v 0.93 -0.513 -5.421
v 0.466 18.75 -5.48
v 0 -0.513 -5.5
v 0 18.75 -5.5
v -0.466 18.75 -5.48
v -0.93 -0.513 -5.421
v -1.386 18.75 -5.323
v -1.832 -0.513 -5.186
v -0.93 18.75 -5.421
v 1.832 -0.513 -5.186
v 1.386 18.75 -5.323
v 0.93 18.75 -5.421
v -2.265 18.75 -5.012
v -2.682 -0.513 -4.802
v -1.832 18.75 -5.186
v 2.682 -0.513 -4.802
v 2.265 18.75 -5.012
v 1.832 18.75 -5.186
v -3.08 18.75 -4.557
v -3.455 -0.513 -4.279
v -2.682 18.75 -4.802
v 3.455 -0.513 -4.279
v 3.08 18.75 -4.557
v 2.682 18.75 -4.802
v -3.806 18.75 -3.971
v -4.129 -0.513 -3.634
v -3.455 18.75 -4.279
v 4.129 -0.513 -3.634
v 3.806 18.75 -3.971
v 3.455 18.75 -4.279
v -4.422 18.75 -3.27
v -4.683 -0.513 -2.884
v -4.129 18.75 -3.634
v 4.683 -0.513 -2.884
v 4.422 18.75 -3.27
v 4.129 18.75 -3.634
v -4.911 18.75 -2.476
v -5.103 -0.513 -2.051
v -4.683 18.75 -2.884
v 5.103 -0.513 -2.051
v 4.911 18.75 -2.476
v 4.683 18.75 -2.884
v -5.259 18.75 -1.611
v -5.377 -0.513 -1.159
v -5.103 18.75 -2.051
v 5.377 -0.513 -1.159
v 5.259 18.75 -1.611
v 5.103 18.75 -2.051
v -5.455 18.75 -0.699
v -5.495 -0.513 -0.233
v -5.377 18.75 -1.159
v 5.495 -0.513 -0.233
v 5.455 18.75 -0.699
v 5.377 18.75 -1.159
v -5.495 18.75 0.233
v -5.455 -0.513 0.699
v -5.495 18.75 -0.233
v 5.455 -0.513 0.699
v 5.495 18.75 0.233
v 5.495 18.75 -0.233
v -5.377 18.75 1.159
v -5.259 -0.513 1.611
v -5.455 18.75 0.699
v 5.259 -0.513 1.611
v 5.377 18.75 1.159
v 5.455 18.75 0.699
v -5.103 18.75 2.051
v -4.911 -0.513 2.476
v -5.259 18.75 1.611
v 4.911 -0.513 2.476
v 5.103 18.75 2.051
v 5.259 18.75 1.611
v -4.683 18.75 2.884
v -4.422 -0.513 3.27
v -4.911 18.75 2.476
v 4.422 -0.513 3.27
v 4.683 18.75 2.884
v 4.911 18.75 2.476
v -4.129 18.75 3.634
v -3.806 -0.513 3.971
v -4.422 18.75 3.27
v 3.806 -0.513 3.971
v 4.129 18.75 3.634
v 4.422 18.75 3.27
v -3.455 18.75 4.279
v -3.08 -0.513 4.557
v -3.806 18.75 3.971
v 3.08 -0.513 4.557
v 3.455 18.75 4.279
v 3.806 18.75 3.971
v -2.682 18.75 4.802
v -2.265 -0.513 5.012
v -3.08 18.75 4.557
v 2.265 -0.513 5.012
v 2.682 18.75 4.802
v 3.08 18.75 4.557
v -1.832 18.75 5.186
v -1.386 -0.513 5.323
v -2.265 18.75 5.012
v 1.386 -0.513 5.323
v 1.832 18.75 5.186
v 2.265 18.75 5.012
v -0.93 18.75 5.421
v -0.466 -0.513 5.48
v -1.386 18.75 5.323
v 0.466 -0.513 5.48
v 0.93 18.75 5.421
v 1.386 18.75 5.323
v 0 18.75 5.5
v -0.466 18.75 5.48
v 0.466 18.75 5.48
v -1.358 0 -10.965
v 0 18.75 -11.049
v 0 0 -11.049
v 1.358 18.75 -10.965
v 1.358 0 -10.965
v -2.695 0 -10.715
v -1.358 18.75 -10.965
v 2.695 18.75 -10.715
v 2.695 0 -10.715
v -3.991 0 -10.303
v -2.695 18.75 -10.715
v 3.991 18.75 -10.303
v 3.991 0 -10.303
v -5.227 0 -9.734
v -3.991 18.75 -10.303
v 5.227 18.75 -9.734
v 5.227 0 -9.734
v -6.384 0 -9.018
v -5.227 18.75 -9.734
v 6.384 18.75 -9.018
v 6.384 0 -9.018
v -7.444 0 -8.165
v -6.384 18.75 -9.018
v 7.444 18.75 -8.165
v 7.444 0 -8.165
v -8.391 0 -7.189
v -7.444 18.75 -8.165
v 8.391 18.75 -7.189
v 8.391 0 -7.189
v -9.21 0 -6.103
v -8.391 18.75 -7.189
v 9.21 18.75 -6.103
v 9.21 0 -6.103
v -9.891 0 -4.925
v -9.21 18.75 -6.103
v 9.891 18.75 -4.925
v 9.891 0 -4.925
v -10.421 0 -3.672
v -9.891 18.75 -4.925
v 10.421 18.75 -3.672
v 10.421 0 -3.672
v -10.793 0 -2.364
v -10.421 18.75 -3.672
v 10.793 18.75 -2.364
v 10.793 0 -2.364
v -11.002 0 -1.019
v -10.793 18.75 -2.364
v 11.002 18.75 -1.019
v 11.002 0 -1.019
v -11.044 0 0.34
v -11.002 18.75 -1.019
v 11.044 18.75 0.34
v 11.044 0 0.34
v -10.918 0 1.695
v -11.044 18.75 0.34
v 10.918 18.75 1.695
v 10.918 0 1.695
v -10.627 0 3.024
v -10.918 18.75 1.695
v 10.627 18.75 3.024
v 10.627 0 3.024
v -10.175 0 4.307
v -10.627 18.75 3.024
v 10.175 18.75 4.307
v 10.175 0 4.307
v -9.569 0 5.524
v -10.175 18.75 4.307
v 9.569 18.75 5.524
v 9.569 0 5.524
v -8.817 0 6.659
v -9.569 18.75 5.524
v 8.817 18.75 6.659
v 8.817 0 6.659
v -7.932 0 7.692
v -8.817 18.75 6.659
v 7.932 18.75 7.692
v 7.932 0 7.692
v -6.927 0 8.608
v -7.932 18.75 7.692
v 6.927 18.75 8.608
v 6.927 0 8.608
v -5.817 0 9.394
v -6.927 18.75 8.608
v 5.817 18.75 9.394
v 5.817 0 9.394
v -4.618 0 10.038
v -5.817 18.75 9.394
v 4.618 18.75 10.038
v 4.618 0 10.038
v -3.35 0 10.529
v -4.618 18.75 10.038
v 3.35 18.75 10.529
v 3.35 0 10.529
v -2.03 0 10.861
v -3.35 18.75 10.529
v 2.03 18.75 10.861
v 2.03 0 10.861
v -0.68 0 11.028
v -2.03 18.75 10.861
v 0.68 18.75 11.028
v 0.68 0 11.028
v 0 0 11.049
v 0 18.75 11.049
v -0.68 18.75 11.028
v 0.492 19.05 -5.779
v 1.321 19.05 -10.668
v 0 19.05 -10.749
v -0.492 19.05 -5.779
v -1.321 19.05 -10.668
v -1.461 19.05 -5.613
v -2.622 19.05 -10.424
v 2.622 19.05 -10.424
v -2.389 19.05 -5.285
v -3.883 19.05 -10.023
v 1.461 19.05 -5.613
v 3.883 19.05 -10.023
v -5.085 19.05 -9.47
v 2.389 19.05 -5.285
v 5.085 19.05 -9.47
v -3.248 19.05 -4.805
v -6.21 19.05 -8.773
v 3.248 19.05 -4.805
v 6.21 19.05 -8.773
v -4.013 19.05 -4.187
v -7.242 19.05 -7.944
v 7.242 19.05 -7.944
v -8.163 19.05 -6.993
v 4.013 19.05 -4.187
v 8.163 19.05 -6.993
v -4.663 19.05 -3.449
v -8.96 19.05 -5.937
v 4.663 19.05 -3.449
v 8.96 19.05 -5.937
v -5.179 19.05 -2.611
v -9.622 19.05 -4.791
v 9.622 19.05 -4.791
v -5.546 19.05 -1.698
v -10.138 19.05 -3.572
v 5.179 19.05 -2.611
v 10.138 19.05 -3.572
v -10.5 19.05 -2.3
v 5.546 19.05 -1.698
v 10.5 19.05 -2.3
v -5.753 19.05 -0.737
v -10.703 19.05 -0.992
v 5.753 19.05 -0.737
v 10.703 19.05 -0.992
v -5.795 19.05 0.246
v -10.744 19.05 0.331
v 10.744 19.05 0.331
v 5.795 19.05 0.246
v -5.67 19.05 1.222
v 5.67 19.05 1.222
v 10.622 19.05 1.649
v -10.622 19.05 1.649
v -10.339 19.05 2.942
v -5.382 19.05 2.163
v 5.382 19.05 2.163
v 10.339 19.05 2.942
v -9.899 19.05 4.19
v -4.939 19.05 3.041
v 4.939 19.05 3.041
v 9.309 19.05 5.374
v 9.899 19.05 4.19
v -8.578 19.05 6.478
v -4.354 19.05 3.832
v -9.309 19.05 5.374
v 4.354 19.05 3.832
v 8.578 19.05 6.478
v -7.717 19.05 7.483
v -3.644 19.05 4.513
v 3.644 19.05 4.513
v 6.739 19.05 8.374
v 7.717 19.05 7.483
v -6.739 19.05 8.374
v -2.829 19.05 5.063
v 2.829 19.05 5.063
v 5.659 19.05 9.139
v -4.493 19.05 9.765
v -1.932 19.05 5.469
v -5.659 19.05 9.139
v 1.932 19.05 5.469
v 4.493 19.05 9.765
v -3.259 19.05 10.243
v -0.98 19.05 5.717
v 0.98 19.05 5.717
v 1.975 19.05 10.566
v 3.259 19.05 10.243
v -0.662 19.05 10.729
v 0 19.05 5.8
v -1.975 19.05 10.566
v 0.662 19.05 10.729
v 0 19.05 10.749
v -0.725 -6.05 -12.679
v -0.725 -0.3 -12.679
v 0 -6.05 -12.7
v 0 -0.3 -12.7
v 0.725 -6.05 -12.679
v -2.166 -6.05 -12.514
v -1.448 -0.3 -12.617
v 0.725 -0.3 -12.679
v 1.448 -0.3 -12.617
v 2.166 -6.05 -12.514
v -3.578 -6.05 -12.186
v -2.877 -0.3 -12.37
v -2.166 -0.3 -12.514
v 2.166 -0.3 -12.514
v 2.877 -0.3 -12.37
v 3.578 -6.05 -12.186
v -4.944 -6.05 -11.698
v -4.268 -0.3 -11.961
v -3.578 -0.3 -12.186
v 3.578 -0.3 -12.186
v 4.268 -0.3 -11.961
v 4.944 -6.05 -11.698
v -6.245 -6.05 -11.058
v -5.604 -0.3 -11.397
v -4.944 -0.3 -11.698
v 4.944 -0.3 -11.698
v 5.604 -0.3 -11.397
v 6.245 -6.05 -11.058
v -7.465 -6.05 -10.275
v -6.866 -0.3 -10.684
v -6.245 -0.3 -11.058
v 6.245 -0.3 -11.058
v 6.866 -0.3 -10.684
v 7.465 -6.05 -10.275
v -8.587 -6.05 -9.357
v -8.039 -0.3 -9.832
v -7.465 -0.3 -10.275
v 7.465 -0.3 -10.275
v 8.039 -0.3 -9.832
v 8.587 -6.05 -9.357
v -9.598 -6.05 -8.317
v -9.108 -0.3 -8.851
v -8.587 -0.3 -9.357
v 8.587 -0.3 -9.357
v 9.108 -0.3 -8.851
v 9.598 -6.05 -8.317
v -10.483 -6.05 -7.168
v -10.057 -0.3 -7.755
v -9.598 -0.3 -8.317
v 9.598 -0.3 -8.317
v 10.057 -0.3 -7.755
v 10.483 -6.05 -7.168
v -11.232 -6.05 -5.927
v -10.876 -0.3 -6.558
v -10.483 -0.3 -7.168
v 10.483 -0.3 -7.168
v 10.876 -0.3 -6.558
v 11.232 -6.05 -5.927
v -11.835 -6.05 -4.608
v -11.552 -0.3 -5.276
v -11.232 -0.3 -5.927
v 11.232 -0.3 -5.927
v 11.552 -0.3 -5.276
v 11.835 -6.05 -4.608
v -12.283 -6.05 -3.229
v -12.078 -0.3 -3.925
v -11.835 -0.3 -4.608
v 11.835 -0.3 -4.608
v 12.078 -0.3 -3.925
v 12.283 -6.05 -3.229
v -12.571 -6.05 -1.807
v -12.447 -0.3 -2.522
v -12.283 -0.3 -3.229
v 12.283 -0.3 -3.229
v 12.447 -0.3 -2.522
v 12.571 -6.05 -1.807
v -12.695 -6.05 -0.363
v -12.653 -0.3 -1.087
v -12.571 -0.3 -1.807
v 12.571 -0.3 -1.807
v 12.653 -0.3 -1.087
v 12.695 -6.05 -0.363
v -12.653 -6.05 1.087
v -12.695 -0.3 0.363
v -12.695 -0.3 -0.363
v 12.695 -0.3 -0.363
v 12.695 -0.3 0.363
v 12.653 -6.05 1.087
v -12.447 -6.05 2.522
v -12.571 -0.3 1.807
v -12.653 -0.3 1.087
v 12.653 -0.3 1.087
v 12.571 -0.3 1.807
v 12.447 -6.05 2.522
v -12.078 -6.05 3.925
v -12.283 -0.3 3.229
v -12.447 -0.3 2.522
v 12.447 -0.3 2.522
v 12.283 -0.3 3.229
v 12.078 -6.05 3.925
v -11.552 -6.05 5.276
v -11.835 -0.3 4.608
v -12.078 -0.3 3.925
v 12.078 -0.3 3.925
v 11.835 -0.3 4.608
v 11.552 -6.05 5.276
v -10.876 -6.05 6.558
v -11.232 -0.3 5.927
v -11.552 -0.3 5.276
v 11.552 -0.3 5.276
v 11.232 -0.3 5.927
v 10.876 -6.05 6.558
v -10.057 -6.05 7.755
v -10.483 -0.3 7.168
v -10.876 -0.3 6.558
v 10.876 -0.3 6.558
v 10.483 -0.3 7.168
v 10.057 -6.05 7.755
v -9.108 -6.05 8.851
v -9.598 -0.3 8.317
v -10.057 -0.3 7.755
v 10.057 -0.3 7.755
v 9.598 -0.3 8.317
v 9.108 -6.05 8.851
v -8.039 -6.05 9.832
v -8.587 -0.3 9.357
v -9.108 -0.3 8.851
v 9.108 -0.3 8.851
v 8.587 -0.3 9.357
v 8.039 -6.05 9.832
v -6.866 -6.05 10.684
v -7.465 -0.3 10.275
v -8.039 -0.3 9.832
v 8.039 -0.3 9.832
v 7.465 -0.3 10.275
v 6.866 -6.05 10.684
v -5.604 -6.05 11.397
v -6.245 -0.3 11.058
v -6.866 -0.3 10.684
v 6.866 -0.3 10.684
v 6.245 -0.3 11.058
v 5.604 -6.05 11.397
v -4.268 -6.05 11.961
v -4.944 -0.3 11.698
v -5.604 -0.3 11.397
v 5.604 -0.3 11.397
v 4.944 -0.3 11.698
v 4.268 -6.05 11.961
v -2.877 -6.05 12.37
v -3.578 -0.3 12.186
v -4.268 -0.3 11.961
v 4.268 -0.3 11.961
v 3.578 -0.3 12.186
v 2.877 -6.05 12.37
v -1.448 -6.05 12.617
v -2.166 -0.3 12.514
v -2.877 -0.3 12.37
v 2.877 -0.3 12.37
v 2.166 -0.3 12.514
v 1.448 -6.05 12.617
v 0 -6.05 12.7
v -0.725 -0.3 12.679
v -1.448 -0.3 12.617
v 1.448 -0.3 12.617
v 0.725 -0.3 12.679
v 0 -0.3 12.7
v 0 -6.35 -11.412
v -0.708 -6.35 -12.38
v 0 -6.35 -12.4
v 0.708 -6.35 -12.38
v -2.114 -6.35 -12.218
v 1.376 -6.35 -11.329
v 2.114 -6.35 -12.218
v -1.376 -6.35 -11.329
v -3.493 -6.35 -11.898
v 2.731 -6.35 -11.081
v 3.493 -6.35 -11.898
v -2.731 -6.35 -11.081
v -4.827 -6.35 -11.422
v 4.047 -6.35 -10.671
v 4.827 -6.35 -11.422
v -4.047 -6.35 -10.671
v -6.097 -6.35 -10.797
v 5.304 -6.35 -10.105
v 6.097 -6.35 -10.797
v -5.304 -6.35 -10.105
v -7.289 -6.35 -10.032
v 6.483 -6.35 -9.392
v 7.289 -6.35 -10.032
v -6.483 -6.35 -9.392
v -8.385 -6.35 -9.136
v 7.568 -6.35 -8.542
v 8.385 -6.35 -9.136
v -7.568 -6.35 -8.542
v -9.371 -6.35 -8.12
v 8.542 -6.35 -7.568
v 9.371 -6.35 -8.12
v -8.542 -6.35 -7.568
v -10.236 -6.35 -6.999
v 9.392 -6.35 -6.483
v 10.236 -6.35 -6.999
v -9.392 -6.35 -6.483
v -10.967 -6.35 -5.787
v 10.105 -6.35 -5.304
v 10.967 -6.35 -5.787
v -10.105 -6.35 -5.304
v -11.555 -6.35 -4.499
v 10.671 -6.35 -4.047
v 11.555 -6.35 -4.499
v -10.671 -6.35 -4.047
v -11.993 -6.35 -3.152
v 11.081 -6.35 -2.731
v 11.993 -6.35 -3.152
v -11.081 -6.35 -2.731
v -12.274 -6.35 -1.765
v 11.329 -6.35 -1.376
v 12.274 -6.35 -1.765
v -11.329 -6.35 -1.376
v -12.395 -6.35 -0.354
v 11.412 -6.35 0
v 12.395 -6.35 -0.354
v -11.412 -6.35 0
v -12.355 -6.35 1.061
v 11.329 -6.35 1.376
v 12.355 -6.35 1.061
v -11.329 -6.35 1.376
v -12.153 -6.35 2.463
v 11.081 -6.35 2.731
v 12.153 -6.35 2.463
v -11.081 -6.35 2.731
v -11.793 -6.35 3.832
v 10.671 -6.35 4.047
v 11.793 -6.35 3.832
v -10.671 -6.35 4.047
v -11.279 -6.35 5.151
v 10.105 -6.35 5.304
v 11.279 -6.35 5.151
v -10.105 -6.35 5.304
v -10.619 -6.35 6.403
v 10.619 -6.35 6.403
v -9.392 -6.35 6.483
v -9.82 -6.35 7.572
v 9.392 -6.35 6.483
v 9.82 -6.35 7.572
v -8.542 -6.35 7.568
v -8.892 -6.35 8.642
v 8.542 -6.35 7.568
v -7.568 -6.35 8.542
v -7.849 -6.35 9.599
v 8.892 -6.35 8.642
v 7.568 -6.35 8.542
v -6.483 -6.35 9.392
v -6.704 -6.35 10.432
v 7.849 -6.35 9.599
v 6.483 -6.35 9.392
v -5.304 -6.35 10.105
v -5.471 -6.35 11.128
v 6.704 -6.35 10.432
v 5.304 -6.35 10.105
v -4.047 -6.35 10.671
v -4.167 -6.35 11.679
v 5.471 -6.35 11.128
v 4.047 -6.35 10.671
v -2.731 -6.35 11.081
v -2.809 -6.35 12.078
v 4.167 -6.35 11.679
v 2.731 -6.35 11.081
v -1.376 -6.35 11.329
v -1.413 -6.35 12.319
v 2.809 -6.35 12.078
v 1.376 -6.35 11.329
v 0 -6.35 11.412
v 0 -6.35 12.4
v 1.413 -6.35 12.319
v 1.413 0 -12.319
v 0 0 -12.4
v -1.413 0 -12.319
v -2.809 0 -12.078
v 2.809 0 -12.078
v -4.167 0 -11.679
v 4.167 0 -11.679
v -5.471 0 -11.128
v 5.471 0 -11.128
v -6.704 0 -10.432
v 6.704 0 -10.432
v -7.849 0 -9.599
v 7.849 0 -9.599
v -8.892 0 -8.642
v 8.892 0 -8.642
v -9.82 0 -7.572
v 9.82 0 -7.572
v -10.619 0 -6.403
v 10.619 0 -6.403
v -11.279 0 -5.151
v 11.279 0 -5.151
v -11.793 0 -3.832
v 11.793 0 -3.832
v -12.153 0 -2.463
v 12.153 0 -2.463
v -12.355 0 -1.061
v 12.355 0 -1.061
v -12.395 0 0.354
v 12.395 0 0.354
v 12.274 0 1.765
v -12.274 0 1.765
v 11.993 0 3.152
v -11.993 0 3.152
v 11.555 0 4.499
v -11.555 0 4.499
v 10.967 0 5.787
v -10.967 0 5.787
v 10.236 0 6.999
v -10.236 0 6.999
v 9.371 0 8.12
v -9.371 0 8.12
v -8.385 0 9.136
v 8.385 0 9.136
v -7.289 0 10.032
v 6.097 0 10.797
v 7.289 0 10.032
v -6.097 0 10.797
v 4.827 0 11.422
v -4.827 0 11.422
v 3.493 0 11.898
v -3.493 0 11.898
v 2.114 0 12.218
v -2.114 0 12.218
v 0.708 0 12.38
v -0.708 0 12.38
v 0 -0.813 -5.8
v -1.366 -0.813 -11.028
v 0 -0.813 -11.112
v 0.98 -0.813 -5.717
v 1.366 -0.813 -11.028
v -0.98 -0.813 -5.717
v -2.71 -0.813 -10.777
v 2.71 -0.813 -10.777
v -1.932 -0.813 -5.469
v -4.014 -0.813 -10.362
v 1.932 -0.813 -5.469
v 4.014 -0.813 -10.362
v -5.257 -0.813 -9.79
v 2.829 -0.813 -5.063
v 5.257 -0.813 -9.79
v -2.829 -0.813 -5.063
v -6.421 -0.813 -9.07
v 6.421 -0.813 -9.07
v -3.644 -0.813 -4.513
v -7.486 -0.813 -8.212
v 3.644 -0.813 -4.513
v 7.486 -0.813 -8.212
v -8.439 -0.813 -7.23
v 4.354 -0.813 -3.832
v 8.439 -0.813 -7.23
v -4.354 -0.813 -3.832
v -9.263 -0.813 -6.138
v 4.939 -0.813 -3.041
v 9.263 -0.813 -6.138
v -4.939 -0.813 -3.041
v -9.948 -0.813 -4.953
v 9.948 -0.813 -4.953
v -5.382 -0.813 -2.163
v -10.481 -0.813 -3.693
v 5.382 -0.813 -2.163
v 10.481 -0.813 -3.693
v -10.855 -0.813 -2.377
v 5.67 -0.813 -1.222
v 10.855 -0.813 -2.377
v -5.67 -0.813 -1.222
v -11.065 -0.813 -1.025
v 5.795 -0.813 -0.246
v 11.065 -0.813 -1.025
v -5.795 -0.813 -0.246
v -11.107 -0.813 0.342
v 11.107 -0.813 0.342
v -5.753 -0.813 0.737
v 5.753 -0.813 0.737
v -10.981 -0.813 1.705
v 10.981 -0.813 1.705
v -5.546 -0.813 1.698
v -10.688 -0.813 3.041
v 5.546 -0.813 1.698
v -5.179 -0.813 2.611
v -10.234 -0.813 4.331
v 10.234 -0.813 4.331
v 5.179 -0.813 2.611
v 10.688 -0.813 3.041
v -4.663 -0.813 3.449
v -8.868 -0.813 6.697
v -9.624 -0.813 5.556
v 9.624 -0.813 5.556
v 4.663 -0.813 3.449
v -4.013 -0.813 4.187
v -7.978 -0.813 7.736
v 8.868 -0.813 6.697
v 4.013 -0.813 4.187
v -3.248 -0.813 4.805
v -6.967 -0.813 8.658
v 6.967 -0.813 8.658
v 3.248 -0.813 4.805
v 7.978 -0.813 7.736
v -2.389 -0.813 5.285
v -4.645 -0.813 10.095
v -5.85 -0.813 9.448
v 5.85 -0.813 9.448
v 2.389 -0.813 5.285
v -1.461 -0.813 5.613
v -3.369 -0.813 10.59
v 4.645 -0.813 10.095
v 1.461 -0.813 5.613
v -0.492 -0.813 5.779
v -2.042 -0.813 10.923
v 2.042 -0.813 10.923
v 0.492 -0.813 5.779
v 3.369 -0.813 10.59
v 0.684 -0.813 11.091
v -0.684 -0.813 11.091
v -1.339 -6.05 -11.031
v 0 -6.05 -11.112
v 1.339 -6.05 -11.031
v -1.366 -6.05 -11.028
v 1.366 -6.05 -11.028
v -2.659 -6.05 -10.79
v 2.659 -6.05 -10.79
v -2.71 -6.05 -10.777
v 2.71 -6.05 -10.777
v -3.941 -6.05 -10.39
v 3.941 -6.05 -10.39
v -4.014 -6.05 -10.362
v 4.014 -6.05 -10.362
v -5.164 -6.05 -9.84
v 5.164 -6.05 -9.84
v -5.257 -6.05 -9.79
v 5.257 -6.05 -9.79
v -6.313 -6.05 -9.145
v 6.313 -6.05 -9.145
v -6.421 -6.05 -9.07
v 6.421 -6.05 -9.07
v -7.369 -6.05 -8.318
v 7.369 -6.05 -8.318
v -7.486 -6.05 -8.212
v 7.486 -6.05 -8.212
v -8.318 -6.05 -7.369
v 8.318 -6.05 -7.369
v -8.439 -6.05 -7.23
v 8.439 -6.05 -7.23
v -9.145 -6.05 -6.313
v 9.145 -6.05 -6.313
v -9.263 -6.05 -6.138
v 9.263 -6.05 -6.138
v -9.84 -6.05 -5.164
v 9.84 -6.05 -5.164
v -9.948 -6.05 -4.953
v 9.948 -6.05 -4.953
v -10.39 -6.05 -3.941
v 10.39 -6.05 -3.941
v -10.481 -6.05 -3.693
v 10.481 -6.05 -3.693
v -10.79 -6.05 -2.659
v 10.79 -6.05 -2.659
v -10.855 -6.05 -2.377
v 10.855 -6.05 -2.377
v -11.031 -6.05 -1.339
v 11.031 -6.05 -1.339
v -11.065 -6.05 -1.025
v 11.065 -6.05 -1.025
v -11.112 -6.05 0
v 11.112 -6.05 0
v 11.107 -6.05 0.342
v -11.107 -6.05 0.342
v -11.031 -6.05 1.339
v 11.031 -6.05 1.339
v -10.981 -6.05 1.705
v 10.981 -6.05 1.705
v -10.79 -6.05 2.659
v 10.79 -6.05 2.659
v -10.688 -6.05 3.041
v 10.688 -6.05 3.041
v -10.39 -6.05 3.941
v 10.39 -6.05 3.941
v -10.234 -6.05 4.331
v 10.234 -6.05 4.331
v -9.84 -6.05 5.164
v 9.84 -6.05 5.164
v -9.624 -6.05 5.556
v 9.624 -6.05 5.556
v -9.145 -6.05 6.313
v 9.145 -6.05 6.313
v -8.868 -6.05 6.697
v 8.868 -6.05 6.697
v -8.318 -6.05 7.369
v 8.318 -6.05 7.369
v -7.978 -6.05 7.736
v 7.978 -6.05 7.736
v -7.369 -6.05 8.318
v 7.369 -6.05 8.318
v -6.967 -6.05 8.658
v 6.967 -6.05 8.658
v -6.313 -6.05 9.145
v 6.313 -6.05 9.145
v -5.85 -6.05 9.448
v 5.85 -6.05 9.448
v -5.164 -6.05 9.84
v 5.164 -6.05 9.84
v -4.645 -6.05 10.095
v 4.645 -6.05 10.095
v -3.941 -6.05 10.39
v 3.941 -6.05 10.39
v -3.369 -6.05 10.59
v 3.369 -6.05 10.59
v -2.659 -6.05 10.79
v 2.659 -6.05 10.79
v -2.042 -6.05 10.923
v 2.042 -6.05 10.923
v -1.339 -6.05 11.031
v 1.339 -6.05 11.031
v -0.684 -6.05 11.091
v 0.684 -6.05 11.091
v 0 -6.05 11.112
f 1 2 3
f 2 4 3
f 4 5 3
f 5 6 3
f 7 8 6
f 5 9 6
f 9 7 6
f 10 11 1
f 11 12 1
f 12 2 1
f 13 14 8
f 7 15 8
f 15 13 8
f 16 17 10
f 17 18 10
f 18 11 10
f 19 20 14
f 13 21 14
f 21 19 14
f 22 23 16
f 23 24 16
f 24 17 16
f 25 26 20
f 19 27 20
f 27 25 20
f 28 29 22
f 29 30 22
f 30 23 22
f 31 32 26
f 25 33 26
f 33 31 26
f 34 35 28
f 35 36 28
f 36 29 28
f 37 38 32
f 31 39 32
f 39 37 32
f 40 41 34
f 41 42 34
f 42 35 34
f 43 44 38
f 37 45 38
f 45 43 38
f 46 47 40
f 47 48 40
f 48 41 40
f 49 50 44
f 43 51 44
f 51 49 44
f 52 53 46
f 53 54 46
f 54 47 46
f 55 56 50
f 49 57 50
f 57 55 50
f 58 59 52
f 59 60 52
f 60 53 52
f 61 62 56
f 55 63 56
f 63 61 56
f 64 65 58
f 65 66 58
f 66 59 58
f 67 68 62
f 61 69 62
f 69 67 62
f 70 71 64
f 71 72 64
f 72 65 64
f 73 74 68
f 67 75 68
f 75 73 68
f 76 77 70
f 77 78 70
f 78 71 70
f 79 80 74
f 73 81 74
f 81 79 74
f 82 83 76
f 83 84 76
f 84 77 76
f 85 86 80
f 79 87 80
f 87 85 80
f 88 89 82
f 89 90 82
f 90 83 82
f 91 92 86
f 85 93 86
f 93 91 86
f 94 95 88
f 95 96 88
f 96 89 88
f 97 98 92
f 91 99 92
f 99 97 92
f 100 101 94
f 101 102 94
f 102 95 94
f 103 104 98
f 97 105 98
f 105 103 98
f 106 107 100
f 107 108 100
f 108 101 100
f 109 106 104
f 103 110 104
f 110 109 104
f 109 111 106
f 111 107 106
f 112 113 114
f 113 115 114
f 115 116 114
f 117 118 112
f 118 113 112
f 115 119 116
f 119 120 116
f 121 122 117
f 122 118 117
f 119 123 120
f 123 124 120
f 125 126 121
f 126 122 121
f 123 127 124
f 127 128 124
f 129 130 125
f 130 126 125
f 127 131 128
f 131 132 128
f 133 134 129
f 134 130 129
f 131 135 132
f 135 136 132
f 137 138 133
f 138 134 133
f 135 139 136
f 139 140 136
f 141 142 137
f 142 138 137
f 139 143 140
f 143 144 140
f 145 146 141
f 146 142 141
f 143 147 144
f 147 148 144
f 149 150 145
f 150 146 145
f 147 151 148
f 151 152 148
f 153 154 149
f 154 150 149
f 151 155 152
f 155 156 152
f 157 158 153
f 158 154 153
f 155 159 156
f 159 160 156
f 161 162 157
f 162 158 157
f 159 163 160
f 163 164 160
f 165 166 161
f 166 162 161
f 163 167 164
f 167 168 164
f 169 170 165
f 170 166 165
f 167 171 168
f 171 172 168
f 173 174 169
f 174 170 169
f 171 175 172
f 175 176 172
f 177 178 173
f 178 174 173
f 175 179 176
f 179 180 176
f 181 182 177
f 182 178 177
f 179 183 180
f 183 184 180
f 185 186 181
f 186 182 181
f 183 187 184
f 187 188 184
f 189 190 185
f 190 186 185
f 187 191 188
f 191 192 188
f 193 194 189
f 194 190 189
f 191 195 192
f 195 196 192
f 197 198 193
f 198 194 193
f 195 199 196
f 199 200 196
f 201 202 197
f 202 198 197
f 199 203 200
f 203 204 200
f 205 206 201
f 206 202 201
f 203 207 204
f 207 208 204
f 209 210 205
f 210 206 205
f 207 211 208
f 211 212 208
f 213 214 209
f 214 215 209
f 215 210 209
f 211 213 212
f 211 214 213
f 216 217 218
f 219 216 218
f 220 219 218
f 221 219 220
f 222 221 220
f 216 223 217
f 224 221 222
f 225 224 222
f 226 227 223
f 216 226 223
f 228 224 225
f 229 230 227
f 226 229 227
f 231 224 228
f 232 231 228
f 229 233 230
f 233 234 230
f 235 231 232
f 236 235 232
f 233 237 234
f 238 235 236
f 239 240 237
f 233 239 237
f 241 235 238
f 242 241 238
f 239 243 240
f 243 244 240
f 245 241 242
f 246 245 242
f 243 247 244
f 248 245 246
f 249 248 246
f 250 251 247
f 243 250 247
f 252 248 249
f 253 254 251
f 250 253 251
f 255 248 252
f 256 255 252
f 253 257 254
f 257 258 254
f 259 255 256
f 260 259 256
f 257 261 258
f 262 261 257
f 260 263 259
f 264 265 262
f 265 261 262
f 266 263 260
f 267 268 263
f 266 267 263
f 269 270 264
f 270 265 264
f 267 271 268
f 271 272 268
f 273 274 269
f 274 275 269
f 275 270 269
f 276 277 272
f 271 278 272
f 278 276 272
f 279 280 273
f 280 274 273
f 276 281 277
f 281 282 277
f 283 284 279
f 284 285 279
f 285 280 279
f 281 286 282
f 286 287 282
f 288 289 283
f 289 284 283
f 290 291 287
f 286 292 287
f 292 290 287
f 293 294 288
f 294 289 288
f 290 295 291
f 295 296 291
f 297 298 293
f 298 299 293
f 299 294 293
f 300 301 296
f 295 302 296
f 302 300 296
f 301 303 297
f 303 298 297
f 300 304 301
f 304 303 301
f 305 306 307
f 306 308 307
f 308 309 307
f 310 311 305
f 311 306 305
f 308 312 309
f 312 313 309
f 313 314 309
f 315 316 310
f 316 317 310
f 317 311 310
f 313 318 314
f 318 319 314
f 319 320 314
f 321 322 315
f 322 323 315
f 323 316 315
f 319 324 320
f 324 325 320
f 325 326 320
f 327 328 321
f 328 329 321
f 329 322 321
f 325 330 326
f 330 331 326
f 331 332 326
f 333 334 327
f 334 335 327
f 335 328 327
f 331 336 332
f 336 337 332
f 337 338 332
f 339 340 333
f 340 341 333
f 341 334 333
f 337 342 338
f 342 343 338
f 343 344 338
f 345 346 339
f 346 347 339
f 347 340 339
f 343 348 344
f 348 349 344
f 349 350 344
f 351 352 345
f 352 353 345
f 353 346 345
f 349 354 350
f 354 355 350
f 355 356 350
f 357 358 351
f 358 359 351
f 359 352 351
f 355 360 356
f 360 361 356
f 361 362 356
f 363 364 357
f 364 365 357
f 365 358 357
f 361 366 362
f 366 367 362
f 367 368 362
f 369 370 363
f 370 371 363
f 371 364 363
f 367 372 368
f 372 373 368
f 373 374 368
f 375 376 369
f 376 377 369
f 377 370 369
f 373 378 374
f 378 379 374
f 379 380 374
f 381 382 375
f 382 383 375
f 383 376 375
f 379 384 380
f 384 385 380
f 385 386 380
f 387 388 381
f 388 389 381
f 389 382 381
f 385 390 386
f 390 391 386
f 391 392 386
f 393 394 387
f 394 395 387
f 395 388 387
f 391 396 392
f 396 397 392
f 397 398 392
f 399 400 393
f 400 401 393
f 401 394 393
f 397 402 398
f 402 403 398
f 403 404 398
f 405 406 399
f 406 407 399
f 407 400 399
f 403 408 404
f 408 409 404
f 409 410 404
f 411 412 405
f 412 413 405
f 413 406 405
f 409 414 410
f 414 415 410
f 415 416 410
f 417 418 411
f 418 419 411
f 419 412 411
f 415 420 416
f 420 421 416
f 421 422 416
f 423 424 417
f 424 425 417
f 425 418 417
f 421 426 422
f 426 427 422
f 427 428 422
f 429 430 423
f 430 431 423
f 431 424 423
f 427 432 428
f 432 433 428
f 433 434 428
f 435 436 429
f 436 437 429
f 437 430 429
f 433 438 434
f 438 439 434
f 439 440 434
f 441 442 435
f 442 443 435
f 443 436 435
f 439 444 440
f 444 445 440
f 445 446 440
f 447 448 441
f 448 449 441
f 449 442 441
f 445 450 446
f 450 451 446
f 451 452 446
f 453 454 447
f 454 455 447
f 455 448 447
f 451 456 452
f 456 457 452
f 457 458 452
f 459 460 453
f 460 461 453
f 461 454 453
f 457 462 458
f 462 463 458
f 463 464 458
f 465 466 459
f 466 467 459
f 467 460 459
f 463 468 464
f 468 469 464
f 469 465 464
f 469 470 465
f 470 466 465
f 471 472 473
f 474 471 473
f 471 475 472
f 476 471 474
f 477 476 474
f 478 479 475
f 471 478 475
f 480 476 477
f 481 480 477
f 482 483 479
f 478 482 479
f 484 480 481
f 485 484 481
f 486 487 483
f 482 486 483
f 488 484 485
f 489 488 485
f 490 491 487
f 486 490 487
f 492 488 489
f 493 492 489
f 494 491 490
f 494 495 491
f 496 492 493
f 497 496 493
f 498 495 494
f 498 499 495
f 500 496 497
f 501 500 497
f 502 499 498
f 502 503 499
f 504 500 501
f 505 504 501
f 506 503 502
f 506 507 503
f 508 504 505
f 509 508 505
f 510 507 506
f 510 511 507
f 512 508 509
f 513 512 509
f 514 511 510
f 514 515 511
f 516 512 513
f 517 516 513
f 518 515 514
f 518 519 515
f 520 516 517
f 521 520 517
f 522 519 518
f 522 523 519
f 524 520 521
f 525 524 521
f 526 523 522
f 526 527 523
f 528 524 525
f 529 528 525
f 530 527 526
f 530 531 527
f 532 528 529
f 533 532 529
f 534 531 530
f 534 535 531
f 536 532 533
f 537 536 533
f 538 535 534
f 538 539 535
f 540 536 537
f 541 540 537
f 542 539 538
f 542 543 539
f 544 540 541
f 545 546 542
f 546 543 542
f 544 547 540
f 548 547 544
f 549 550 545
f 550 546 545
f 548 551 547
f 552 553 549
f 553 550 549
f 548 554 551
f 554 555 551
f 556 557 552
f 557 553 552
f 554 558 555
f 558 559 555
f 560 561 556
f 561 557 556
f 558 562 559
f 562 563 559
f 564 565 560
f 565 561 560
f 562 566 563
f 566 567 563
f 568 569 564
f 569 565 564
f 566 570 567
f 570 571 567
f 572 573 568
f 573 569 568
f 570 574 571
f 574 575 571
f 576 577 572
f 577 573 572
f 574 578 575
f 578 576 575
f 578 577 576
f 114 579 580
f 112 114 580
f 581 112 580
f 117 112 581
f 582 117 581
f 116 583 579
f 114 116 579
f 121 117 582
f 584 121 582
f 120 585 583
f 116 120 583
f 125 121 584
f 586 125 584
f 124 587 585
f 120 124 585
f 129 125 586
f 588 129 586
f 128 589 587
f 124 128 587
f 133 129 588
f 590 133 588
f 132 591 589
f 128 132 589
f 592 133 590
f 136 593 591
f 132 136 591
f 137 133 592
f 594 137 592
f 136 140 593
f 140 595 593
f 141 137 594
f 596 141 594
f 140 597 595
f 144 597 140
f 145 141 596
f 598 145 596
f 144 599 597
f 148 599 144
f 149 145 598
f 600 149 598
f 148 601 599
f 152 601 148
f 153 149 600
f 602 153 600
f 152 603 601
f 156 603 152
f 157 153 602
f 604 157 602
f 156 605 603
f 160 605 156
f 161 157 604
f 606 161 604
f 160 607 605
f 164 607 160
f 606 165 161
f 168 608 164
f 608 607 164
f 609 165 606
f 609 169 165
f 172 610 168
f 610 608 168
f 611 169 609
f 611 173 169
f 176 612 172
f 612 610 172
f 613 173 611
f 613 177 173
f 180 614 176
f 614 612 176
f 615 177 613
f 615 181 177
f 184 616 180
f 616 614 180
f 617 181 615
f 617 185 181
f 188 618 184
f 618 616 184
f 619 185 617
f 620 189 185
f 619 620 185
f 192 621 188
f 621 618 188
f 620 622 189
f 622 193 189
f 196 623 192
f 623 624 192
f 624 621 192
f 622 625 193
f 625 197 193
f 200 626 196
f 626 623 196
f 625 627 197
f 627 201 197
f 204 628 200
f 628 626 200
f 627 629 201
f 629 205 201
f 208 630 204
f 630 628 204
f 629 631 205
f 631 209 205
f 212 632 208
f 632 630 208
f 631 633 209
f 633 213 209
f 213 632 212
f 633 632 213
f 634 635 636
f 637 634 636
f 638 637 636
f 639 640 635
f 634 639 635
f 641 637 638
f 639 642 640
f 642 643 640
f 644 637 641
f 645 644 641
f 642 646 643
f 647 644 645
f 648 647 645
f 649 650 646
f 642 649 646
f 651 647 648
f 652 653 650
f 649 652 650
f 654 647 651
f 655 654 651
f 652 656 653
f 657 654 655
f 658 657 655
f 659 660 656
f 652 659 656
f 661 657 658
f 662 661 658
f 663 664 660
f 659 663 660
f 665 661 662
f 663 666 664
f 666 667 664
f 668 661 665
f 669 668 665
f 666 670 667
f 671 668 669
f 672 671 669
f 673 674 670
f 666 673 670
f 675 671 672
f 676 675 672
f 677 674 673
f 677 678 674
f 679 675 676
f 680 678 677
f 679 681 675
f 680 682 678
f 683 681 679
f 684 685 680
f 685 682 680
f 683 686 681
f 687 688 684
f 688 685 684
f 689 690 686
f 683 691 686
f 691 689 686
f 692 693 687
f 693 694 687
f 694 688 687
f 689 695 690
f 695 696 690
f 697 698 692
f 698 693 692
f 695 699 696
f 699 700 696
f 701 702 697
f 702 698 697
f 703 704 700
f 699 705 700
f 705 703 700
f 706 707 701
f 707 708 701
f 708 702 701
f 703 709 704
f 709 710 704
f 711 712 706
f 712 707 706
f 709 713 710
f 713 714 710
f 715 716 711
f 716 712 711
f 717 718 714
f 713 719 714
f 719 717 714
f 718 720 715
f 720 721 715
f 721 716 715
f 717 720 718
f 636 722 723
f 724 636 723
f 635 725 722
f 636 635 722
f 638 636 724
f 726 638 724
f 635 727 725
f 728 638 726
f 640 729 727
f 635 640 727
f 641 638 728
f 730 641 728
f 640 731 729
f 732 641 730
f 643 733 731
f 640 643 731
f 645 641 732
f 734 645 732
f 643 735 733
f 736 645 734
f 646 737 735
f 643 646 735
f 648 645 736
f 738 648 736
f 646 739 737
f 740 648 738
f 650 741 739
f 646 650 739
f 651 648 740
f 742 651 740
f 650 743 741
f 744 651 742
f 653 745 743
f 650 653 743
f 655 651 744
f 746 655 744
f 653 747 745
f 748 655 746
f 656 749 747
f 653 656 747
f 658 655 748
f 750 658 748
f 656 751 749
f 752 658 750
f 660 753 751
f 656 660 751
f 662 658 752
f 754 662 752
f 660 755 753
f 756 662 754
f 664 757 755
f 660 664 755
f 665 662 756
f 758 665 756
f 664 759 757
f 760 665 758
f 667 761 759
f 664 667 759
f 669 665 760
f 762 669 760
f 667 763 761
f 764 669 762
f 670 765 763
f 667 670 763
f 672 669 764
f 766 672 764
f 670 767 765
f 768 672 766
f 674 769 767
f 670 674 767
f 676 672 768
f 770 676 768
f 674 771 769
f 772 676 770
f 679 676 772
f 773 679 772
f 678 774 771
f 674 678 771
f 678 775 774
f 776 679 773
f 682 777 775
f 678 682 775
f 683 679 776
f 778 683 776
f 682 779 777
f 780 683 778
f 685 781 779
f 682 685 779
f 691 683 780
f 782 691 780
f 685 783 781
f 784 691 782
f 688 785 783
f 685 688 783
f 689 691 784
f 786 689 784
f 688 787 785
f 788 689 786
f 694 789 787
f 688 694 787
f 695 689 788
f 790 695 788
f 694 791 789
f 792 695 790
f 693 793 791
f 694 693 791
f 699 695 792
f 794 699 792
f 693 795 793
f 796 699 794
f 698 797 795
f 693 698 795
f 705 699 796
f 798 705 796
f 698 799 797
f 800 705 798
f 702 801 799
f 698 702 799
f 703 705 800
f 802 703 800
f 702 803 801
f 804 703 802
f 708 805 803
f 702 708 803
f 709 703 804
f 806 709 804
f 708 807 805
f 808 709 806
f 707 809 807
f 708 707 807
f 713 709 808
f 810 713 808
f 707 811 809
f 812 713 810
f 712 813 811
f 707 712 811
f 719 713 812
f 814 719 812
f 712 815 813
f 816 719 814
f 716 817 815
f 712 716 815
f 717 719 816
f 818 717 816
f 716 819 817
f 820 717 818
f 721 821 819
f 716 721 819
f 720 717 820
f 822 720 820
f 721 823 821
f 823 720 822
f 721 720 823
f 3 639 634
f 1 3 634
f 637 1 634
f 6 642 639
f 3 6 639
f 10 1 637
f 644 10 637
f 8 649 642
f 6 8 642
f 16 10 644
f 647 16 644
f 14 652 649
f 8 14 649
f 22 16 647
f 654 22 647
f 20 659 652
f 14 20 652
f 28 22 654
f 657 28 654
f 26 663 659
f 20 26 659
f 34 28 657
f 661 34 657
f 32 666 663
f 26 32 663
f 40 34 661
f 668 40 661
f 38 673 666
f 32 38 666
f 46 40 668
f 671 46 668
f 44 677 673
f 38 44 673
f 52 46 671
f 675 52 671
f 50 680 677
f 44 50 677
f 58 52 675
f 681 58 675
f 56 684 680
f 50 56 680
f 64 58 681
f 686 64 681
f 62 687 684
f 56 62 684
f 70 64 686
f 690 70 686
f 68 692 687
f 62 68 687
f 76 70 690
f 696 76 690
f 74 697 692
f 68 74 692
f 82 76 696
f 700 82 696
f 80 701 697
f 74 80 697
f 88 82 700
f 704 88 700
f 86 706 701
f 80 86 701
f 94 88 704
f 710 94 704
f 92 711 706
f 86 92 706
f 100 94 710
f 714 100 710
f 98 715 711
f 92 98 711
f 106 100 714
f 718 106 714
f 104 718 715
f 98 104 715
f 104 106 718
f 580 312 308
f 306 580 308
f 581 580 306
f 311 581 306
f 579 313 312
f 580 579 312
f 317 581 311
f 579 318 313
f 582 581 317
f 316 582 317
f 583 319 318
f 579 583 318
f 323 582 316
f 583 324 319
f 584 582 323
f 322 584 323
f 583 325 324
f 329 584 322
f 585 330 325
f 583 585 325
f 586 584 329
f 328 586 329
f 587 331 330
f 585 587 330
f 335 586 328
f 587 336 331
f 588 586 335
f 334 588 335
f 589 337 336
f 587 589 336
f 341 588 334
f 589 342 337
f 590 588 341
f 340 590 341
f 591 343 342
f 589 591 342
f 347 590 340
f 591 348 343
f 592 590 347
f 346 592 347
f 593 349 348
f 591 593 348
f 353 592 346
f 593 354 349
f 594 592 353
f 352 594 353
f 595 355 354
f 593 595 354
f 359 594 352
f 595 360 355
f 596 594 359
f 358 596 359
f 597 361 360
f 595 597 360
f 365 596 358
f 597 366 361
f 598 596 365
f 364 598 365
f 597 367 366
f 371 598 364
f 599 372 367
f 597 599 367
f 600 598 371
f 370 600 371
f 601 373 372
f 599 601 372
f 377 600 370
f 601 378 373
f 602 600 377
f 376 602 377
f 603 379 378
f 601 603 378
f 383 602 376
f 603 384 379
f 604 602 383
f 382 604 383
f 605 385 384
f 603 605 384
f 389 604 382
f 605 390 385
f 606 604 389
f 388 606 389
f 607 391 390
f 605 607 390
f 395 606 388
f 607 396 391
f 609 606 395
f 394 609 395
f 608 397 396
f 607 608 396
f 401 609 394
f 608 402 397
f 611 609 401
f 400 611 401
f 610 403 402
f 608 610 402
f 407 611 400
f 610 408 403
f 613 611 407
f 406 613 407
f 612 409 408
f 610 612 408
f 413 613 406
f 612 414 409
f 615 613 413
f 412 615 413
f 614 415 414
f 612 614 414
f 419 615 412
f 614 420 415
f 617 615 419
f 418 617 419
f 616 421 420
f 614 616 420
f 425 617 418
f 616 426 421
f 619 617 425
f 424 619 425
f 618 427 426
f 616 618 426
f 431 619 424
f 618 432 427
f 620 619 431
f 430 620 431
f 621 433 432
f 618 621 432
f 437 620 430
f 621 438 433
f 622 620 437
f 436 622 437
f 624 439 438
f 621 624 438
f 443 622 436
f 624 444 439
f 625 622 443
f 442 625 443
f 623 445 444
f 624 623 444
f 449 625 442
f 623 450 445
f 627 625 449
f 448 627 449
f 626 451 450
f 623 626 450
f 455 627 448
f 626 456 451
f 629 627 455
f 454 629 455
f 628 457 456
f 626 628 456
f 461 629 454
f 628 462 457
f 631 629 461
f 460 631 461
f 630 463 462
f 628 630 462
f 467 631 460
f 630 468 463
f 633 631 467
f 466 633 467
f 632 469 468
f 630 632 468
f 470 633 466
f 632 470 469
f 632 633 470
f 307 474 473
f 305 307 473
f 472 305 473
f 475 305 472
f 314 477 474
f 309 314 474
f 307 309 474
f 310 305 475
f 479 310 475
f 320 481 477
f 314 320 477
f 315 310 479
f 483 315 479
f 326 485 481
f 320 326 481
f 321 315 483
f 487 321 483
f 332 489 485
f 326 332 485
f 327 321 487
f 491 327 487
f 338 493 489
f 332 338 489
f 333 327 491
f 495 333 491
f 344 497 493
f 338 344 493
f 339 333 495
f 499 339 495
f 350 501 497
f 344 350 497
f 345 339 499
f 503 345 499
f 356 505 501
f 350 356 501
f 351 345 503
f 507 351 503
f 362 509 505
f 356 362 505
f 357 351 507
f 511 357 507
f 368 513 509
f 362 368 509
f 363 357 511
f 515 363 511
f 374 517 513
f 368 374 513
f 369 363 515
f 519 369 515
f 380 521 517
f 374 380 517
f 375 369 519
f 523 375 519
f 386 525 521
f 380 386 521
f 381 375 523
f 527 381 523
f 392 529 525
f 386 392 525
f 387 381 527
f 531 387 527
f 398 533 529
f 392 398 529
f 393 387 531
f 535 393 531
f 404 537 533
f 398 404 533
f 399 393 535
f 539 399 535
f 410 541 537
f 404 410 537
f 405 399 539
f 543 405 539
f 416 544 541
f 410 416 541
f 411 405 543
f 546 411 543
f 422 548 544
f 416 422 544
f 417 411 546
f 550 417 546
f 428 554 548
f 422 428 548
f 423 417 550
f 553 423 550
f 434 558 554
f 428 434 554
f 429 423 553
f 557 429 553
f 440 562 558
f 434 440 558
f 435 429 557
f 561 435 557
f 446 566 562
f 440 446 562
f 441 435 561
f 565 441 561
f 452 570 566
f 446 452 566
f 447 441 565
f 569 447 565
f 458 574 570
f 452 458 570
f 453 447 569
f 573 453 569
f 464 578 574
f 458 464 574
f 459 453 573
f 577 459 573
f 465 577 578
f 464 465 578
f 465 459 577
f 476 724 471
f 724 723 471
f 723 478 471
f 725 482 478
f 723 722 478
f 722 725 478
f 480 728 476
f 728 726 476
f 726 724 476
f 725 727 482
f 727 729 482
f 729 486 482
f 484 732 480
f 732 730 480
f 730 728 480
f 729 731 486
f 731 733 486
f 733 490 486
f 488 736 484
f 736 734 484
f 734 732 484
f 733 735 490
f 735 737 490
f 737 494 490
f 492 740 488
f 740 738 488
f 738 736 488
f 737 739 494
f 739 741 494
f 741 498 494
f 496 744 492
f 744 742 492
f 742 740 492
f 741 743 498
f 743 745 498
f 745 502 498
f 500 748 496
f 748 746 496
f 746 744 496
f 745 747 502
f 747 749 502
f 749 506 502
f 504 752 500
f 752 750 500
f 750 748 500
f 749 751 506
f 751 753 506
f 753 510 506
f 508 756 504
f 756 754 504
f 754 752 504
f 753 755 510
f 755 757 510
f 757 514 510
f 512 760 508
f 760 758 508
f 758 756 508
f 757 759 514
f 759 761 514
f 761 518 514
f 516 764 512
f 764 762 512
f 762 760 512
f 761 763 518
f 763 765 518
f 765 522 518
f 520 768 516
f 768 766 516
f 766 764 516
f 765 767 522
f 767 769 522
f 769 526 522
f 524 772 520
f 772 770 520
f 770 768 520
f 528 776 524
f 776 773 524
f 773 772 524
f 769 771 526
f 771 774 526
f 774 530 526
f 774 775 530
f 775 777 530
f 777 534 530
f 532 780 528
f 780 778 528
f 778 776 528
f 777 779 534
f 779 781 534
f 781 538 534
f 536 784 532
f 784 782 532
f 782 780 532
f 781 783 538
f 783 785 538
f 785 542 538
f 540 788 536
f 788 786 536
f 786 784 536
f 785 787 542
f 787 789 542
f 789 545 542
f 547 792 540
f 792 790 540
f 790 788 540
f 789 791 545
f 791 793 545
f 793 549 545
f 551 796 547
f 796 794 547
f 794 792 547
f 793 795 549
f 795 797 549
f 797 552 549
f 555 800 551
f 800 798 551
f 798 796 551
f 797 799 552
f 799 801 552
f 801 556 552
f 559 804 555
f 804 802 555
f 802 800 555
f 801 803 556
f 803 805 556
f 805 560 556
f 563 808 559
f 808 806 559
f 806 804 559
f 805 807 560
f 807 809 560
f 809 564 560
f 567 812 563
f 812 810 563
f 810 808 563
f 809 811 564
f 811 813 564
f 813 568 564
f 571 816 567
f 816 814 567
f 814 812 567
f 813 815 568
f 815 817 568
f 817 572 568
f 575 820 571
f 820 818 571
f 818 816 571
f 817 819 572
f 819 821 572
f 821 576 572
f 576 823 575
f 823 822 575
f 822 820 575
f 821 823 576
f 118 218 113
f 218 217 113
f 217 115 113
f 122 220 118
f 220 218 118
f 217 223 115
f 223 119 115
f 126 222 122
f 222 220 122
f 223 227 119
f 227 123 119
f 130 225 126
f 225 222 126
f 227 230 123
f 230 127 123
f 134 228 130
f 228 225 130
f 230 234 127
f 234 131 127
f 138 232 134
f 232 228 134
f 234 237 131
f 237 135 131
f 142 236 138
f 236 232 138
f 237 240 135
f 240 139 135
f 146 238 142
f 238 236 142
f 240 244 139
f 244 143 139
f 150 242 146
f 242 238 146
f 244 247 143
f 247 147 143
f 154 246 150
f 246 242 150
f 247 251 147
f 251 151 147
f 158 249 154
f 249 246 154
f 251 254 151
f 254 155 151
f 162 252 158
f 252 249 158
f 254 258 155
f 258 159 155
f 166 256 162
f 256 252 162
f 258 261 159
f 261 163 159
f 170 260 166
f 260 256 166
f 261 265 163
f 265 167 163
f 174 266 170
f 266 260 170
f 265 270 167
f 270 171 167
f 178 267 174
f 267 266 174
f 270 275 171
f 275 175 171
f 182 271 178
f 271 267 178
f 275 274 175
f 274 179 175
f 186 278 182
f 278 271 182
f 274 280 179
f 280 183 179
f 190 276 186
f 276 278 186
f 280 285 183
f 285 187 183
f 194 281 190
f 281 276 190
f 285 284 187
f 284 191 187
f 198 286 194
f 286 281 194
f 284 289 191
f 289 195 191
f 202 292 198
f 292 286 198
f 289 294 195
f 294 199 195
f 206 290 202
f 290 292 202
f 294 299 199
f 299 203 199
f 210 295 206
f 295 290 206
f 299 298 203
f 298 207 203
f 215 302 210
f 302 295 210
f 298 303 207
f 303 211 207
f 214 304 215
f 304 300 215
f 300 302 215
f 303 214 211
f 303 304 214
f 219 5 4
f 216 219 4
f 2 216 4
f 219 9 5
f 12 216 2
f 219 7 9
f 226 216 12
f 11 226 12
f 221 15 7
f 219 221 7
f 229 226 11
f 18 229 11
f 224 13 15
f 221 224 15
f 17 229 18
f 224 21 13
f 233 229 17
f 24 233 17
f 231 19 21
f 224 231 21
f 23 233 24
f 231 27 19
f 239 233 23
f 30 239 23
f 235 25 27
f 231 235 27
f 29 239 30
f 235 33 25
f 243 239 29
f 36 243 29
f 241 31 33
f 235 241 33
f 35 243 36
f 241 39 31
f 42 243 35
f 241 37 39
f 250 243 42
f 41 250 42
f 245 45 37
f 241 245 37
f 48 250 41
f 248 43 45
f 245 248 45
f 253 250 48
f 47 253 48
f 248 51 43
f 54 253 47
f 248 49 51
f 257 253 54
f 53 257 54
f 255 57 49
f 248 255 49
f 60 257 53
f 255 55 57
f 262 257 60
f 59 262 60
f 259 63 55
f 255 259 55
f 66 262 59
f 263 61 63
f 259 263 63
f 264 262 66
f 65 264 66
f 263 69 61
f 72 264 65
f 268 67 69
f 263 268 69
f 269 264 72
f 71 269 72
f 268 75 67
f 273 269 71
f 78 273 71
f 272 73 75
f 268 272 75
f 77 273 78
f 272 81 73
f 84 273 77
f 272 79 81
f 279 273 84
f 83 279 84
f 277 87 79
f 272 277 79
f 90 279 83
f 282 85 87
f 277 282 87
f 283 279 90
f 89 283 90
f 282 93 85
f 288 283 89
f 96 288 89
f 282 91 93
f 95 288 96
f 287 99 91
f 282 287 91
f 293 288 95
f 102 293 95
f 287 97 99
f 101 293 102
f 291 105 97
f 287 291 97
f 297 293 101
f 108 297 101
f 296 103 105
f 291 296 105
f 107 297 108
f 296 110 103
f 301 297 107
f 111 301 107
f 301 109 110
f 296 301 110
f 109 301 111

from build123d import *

# Parameters (mm, degrees)
SKETCH1_R           = 11.049
BOSS_EXTRUDE1_DEPTH = 19.05
SKETCH2_R           = 12.7
BOSS_EXTRUDE2_DEPTH = 6.35
SKETCH3_R           = 5.5
CUT_EXTRUDE1_DEPTH  = 32.108519733
SKETCH4_R           = 11.1125
CUT_EXTRUDE2_DEPTH  = 5.5372
CHAMFER1_SIZE       = 0.299999908


with BuildPart() as part:
    # Sketch1 → Boss-Extrude1 (new body)
    with BuildSketch(Plane(origin=(0, 0, 0), x_dir=(1, 0, 0), z_dir=(0, 1, 0))):
        with Locations(Location((0, 0, 0), (0, 0, 90))):
            Circle(SKETCH1_R)
    extrude(amount=BOSS_EXTRUDE1_DEPTH)

    # Sketch2 → Boss-Extrude2 (add)
    with BuildSketch(Plane.XZ):
        with Locations(Location((0, 0, 0), (0, 0, 270))):
            Circle(SKETCH2_R)
    extrude(amount=BOSS_EXTRUDE2_DEPTH)

    # Sketch3 → Cut-Extrude1 (cut, through all)
    with BuildSketch(Plane.XZ.offset(6.35)):
        with Locations(Location((0, 0, 0), (0, 0, 270))):
            Circle(SKETCH3_R)
    extrude(amount=-CUT_EXTRUDE1_DEPTH, mode=Mode.SUBTRACT)

    # Sketch4 → Cut-Extrude2 (cut)
    with BuildSketch(Plane.XZ.offset(6.35)):
        with Locations(Location((0, 0, 0), (0, 0, 270))):
            Circle(SKETCH4_R)
    extrude(amount=-CUT_EXTRUDE2_DEPTH, mode=Mode.SUBTRACT)

    # Chamfer1
    chamfer1_edges = [part.edges().sort_by_distance(p)[0] for p in [
        (0, 19.05, 5.5),
        (0, -6.35, 11.1125),
        (0, -0.8128, 5.5),
        (0, 19.05, 11.049),
        (0, 0, 12.7),
        (0, -6.35, 12.7),
    ]]
    chamfer(chamfer1_edges, length=CHAMFER1_SIZE)


solid = part.part
